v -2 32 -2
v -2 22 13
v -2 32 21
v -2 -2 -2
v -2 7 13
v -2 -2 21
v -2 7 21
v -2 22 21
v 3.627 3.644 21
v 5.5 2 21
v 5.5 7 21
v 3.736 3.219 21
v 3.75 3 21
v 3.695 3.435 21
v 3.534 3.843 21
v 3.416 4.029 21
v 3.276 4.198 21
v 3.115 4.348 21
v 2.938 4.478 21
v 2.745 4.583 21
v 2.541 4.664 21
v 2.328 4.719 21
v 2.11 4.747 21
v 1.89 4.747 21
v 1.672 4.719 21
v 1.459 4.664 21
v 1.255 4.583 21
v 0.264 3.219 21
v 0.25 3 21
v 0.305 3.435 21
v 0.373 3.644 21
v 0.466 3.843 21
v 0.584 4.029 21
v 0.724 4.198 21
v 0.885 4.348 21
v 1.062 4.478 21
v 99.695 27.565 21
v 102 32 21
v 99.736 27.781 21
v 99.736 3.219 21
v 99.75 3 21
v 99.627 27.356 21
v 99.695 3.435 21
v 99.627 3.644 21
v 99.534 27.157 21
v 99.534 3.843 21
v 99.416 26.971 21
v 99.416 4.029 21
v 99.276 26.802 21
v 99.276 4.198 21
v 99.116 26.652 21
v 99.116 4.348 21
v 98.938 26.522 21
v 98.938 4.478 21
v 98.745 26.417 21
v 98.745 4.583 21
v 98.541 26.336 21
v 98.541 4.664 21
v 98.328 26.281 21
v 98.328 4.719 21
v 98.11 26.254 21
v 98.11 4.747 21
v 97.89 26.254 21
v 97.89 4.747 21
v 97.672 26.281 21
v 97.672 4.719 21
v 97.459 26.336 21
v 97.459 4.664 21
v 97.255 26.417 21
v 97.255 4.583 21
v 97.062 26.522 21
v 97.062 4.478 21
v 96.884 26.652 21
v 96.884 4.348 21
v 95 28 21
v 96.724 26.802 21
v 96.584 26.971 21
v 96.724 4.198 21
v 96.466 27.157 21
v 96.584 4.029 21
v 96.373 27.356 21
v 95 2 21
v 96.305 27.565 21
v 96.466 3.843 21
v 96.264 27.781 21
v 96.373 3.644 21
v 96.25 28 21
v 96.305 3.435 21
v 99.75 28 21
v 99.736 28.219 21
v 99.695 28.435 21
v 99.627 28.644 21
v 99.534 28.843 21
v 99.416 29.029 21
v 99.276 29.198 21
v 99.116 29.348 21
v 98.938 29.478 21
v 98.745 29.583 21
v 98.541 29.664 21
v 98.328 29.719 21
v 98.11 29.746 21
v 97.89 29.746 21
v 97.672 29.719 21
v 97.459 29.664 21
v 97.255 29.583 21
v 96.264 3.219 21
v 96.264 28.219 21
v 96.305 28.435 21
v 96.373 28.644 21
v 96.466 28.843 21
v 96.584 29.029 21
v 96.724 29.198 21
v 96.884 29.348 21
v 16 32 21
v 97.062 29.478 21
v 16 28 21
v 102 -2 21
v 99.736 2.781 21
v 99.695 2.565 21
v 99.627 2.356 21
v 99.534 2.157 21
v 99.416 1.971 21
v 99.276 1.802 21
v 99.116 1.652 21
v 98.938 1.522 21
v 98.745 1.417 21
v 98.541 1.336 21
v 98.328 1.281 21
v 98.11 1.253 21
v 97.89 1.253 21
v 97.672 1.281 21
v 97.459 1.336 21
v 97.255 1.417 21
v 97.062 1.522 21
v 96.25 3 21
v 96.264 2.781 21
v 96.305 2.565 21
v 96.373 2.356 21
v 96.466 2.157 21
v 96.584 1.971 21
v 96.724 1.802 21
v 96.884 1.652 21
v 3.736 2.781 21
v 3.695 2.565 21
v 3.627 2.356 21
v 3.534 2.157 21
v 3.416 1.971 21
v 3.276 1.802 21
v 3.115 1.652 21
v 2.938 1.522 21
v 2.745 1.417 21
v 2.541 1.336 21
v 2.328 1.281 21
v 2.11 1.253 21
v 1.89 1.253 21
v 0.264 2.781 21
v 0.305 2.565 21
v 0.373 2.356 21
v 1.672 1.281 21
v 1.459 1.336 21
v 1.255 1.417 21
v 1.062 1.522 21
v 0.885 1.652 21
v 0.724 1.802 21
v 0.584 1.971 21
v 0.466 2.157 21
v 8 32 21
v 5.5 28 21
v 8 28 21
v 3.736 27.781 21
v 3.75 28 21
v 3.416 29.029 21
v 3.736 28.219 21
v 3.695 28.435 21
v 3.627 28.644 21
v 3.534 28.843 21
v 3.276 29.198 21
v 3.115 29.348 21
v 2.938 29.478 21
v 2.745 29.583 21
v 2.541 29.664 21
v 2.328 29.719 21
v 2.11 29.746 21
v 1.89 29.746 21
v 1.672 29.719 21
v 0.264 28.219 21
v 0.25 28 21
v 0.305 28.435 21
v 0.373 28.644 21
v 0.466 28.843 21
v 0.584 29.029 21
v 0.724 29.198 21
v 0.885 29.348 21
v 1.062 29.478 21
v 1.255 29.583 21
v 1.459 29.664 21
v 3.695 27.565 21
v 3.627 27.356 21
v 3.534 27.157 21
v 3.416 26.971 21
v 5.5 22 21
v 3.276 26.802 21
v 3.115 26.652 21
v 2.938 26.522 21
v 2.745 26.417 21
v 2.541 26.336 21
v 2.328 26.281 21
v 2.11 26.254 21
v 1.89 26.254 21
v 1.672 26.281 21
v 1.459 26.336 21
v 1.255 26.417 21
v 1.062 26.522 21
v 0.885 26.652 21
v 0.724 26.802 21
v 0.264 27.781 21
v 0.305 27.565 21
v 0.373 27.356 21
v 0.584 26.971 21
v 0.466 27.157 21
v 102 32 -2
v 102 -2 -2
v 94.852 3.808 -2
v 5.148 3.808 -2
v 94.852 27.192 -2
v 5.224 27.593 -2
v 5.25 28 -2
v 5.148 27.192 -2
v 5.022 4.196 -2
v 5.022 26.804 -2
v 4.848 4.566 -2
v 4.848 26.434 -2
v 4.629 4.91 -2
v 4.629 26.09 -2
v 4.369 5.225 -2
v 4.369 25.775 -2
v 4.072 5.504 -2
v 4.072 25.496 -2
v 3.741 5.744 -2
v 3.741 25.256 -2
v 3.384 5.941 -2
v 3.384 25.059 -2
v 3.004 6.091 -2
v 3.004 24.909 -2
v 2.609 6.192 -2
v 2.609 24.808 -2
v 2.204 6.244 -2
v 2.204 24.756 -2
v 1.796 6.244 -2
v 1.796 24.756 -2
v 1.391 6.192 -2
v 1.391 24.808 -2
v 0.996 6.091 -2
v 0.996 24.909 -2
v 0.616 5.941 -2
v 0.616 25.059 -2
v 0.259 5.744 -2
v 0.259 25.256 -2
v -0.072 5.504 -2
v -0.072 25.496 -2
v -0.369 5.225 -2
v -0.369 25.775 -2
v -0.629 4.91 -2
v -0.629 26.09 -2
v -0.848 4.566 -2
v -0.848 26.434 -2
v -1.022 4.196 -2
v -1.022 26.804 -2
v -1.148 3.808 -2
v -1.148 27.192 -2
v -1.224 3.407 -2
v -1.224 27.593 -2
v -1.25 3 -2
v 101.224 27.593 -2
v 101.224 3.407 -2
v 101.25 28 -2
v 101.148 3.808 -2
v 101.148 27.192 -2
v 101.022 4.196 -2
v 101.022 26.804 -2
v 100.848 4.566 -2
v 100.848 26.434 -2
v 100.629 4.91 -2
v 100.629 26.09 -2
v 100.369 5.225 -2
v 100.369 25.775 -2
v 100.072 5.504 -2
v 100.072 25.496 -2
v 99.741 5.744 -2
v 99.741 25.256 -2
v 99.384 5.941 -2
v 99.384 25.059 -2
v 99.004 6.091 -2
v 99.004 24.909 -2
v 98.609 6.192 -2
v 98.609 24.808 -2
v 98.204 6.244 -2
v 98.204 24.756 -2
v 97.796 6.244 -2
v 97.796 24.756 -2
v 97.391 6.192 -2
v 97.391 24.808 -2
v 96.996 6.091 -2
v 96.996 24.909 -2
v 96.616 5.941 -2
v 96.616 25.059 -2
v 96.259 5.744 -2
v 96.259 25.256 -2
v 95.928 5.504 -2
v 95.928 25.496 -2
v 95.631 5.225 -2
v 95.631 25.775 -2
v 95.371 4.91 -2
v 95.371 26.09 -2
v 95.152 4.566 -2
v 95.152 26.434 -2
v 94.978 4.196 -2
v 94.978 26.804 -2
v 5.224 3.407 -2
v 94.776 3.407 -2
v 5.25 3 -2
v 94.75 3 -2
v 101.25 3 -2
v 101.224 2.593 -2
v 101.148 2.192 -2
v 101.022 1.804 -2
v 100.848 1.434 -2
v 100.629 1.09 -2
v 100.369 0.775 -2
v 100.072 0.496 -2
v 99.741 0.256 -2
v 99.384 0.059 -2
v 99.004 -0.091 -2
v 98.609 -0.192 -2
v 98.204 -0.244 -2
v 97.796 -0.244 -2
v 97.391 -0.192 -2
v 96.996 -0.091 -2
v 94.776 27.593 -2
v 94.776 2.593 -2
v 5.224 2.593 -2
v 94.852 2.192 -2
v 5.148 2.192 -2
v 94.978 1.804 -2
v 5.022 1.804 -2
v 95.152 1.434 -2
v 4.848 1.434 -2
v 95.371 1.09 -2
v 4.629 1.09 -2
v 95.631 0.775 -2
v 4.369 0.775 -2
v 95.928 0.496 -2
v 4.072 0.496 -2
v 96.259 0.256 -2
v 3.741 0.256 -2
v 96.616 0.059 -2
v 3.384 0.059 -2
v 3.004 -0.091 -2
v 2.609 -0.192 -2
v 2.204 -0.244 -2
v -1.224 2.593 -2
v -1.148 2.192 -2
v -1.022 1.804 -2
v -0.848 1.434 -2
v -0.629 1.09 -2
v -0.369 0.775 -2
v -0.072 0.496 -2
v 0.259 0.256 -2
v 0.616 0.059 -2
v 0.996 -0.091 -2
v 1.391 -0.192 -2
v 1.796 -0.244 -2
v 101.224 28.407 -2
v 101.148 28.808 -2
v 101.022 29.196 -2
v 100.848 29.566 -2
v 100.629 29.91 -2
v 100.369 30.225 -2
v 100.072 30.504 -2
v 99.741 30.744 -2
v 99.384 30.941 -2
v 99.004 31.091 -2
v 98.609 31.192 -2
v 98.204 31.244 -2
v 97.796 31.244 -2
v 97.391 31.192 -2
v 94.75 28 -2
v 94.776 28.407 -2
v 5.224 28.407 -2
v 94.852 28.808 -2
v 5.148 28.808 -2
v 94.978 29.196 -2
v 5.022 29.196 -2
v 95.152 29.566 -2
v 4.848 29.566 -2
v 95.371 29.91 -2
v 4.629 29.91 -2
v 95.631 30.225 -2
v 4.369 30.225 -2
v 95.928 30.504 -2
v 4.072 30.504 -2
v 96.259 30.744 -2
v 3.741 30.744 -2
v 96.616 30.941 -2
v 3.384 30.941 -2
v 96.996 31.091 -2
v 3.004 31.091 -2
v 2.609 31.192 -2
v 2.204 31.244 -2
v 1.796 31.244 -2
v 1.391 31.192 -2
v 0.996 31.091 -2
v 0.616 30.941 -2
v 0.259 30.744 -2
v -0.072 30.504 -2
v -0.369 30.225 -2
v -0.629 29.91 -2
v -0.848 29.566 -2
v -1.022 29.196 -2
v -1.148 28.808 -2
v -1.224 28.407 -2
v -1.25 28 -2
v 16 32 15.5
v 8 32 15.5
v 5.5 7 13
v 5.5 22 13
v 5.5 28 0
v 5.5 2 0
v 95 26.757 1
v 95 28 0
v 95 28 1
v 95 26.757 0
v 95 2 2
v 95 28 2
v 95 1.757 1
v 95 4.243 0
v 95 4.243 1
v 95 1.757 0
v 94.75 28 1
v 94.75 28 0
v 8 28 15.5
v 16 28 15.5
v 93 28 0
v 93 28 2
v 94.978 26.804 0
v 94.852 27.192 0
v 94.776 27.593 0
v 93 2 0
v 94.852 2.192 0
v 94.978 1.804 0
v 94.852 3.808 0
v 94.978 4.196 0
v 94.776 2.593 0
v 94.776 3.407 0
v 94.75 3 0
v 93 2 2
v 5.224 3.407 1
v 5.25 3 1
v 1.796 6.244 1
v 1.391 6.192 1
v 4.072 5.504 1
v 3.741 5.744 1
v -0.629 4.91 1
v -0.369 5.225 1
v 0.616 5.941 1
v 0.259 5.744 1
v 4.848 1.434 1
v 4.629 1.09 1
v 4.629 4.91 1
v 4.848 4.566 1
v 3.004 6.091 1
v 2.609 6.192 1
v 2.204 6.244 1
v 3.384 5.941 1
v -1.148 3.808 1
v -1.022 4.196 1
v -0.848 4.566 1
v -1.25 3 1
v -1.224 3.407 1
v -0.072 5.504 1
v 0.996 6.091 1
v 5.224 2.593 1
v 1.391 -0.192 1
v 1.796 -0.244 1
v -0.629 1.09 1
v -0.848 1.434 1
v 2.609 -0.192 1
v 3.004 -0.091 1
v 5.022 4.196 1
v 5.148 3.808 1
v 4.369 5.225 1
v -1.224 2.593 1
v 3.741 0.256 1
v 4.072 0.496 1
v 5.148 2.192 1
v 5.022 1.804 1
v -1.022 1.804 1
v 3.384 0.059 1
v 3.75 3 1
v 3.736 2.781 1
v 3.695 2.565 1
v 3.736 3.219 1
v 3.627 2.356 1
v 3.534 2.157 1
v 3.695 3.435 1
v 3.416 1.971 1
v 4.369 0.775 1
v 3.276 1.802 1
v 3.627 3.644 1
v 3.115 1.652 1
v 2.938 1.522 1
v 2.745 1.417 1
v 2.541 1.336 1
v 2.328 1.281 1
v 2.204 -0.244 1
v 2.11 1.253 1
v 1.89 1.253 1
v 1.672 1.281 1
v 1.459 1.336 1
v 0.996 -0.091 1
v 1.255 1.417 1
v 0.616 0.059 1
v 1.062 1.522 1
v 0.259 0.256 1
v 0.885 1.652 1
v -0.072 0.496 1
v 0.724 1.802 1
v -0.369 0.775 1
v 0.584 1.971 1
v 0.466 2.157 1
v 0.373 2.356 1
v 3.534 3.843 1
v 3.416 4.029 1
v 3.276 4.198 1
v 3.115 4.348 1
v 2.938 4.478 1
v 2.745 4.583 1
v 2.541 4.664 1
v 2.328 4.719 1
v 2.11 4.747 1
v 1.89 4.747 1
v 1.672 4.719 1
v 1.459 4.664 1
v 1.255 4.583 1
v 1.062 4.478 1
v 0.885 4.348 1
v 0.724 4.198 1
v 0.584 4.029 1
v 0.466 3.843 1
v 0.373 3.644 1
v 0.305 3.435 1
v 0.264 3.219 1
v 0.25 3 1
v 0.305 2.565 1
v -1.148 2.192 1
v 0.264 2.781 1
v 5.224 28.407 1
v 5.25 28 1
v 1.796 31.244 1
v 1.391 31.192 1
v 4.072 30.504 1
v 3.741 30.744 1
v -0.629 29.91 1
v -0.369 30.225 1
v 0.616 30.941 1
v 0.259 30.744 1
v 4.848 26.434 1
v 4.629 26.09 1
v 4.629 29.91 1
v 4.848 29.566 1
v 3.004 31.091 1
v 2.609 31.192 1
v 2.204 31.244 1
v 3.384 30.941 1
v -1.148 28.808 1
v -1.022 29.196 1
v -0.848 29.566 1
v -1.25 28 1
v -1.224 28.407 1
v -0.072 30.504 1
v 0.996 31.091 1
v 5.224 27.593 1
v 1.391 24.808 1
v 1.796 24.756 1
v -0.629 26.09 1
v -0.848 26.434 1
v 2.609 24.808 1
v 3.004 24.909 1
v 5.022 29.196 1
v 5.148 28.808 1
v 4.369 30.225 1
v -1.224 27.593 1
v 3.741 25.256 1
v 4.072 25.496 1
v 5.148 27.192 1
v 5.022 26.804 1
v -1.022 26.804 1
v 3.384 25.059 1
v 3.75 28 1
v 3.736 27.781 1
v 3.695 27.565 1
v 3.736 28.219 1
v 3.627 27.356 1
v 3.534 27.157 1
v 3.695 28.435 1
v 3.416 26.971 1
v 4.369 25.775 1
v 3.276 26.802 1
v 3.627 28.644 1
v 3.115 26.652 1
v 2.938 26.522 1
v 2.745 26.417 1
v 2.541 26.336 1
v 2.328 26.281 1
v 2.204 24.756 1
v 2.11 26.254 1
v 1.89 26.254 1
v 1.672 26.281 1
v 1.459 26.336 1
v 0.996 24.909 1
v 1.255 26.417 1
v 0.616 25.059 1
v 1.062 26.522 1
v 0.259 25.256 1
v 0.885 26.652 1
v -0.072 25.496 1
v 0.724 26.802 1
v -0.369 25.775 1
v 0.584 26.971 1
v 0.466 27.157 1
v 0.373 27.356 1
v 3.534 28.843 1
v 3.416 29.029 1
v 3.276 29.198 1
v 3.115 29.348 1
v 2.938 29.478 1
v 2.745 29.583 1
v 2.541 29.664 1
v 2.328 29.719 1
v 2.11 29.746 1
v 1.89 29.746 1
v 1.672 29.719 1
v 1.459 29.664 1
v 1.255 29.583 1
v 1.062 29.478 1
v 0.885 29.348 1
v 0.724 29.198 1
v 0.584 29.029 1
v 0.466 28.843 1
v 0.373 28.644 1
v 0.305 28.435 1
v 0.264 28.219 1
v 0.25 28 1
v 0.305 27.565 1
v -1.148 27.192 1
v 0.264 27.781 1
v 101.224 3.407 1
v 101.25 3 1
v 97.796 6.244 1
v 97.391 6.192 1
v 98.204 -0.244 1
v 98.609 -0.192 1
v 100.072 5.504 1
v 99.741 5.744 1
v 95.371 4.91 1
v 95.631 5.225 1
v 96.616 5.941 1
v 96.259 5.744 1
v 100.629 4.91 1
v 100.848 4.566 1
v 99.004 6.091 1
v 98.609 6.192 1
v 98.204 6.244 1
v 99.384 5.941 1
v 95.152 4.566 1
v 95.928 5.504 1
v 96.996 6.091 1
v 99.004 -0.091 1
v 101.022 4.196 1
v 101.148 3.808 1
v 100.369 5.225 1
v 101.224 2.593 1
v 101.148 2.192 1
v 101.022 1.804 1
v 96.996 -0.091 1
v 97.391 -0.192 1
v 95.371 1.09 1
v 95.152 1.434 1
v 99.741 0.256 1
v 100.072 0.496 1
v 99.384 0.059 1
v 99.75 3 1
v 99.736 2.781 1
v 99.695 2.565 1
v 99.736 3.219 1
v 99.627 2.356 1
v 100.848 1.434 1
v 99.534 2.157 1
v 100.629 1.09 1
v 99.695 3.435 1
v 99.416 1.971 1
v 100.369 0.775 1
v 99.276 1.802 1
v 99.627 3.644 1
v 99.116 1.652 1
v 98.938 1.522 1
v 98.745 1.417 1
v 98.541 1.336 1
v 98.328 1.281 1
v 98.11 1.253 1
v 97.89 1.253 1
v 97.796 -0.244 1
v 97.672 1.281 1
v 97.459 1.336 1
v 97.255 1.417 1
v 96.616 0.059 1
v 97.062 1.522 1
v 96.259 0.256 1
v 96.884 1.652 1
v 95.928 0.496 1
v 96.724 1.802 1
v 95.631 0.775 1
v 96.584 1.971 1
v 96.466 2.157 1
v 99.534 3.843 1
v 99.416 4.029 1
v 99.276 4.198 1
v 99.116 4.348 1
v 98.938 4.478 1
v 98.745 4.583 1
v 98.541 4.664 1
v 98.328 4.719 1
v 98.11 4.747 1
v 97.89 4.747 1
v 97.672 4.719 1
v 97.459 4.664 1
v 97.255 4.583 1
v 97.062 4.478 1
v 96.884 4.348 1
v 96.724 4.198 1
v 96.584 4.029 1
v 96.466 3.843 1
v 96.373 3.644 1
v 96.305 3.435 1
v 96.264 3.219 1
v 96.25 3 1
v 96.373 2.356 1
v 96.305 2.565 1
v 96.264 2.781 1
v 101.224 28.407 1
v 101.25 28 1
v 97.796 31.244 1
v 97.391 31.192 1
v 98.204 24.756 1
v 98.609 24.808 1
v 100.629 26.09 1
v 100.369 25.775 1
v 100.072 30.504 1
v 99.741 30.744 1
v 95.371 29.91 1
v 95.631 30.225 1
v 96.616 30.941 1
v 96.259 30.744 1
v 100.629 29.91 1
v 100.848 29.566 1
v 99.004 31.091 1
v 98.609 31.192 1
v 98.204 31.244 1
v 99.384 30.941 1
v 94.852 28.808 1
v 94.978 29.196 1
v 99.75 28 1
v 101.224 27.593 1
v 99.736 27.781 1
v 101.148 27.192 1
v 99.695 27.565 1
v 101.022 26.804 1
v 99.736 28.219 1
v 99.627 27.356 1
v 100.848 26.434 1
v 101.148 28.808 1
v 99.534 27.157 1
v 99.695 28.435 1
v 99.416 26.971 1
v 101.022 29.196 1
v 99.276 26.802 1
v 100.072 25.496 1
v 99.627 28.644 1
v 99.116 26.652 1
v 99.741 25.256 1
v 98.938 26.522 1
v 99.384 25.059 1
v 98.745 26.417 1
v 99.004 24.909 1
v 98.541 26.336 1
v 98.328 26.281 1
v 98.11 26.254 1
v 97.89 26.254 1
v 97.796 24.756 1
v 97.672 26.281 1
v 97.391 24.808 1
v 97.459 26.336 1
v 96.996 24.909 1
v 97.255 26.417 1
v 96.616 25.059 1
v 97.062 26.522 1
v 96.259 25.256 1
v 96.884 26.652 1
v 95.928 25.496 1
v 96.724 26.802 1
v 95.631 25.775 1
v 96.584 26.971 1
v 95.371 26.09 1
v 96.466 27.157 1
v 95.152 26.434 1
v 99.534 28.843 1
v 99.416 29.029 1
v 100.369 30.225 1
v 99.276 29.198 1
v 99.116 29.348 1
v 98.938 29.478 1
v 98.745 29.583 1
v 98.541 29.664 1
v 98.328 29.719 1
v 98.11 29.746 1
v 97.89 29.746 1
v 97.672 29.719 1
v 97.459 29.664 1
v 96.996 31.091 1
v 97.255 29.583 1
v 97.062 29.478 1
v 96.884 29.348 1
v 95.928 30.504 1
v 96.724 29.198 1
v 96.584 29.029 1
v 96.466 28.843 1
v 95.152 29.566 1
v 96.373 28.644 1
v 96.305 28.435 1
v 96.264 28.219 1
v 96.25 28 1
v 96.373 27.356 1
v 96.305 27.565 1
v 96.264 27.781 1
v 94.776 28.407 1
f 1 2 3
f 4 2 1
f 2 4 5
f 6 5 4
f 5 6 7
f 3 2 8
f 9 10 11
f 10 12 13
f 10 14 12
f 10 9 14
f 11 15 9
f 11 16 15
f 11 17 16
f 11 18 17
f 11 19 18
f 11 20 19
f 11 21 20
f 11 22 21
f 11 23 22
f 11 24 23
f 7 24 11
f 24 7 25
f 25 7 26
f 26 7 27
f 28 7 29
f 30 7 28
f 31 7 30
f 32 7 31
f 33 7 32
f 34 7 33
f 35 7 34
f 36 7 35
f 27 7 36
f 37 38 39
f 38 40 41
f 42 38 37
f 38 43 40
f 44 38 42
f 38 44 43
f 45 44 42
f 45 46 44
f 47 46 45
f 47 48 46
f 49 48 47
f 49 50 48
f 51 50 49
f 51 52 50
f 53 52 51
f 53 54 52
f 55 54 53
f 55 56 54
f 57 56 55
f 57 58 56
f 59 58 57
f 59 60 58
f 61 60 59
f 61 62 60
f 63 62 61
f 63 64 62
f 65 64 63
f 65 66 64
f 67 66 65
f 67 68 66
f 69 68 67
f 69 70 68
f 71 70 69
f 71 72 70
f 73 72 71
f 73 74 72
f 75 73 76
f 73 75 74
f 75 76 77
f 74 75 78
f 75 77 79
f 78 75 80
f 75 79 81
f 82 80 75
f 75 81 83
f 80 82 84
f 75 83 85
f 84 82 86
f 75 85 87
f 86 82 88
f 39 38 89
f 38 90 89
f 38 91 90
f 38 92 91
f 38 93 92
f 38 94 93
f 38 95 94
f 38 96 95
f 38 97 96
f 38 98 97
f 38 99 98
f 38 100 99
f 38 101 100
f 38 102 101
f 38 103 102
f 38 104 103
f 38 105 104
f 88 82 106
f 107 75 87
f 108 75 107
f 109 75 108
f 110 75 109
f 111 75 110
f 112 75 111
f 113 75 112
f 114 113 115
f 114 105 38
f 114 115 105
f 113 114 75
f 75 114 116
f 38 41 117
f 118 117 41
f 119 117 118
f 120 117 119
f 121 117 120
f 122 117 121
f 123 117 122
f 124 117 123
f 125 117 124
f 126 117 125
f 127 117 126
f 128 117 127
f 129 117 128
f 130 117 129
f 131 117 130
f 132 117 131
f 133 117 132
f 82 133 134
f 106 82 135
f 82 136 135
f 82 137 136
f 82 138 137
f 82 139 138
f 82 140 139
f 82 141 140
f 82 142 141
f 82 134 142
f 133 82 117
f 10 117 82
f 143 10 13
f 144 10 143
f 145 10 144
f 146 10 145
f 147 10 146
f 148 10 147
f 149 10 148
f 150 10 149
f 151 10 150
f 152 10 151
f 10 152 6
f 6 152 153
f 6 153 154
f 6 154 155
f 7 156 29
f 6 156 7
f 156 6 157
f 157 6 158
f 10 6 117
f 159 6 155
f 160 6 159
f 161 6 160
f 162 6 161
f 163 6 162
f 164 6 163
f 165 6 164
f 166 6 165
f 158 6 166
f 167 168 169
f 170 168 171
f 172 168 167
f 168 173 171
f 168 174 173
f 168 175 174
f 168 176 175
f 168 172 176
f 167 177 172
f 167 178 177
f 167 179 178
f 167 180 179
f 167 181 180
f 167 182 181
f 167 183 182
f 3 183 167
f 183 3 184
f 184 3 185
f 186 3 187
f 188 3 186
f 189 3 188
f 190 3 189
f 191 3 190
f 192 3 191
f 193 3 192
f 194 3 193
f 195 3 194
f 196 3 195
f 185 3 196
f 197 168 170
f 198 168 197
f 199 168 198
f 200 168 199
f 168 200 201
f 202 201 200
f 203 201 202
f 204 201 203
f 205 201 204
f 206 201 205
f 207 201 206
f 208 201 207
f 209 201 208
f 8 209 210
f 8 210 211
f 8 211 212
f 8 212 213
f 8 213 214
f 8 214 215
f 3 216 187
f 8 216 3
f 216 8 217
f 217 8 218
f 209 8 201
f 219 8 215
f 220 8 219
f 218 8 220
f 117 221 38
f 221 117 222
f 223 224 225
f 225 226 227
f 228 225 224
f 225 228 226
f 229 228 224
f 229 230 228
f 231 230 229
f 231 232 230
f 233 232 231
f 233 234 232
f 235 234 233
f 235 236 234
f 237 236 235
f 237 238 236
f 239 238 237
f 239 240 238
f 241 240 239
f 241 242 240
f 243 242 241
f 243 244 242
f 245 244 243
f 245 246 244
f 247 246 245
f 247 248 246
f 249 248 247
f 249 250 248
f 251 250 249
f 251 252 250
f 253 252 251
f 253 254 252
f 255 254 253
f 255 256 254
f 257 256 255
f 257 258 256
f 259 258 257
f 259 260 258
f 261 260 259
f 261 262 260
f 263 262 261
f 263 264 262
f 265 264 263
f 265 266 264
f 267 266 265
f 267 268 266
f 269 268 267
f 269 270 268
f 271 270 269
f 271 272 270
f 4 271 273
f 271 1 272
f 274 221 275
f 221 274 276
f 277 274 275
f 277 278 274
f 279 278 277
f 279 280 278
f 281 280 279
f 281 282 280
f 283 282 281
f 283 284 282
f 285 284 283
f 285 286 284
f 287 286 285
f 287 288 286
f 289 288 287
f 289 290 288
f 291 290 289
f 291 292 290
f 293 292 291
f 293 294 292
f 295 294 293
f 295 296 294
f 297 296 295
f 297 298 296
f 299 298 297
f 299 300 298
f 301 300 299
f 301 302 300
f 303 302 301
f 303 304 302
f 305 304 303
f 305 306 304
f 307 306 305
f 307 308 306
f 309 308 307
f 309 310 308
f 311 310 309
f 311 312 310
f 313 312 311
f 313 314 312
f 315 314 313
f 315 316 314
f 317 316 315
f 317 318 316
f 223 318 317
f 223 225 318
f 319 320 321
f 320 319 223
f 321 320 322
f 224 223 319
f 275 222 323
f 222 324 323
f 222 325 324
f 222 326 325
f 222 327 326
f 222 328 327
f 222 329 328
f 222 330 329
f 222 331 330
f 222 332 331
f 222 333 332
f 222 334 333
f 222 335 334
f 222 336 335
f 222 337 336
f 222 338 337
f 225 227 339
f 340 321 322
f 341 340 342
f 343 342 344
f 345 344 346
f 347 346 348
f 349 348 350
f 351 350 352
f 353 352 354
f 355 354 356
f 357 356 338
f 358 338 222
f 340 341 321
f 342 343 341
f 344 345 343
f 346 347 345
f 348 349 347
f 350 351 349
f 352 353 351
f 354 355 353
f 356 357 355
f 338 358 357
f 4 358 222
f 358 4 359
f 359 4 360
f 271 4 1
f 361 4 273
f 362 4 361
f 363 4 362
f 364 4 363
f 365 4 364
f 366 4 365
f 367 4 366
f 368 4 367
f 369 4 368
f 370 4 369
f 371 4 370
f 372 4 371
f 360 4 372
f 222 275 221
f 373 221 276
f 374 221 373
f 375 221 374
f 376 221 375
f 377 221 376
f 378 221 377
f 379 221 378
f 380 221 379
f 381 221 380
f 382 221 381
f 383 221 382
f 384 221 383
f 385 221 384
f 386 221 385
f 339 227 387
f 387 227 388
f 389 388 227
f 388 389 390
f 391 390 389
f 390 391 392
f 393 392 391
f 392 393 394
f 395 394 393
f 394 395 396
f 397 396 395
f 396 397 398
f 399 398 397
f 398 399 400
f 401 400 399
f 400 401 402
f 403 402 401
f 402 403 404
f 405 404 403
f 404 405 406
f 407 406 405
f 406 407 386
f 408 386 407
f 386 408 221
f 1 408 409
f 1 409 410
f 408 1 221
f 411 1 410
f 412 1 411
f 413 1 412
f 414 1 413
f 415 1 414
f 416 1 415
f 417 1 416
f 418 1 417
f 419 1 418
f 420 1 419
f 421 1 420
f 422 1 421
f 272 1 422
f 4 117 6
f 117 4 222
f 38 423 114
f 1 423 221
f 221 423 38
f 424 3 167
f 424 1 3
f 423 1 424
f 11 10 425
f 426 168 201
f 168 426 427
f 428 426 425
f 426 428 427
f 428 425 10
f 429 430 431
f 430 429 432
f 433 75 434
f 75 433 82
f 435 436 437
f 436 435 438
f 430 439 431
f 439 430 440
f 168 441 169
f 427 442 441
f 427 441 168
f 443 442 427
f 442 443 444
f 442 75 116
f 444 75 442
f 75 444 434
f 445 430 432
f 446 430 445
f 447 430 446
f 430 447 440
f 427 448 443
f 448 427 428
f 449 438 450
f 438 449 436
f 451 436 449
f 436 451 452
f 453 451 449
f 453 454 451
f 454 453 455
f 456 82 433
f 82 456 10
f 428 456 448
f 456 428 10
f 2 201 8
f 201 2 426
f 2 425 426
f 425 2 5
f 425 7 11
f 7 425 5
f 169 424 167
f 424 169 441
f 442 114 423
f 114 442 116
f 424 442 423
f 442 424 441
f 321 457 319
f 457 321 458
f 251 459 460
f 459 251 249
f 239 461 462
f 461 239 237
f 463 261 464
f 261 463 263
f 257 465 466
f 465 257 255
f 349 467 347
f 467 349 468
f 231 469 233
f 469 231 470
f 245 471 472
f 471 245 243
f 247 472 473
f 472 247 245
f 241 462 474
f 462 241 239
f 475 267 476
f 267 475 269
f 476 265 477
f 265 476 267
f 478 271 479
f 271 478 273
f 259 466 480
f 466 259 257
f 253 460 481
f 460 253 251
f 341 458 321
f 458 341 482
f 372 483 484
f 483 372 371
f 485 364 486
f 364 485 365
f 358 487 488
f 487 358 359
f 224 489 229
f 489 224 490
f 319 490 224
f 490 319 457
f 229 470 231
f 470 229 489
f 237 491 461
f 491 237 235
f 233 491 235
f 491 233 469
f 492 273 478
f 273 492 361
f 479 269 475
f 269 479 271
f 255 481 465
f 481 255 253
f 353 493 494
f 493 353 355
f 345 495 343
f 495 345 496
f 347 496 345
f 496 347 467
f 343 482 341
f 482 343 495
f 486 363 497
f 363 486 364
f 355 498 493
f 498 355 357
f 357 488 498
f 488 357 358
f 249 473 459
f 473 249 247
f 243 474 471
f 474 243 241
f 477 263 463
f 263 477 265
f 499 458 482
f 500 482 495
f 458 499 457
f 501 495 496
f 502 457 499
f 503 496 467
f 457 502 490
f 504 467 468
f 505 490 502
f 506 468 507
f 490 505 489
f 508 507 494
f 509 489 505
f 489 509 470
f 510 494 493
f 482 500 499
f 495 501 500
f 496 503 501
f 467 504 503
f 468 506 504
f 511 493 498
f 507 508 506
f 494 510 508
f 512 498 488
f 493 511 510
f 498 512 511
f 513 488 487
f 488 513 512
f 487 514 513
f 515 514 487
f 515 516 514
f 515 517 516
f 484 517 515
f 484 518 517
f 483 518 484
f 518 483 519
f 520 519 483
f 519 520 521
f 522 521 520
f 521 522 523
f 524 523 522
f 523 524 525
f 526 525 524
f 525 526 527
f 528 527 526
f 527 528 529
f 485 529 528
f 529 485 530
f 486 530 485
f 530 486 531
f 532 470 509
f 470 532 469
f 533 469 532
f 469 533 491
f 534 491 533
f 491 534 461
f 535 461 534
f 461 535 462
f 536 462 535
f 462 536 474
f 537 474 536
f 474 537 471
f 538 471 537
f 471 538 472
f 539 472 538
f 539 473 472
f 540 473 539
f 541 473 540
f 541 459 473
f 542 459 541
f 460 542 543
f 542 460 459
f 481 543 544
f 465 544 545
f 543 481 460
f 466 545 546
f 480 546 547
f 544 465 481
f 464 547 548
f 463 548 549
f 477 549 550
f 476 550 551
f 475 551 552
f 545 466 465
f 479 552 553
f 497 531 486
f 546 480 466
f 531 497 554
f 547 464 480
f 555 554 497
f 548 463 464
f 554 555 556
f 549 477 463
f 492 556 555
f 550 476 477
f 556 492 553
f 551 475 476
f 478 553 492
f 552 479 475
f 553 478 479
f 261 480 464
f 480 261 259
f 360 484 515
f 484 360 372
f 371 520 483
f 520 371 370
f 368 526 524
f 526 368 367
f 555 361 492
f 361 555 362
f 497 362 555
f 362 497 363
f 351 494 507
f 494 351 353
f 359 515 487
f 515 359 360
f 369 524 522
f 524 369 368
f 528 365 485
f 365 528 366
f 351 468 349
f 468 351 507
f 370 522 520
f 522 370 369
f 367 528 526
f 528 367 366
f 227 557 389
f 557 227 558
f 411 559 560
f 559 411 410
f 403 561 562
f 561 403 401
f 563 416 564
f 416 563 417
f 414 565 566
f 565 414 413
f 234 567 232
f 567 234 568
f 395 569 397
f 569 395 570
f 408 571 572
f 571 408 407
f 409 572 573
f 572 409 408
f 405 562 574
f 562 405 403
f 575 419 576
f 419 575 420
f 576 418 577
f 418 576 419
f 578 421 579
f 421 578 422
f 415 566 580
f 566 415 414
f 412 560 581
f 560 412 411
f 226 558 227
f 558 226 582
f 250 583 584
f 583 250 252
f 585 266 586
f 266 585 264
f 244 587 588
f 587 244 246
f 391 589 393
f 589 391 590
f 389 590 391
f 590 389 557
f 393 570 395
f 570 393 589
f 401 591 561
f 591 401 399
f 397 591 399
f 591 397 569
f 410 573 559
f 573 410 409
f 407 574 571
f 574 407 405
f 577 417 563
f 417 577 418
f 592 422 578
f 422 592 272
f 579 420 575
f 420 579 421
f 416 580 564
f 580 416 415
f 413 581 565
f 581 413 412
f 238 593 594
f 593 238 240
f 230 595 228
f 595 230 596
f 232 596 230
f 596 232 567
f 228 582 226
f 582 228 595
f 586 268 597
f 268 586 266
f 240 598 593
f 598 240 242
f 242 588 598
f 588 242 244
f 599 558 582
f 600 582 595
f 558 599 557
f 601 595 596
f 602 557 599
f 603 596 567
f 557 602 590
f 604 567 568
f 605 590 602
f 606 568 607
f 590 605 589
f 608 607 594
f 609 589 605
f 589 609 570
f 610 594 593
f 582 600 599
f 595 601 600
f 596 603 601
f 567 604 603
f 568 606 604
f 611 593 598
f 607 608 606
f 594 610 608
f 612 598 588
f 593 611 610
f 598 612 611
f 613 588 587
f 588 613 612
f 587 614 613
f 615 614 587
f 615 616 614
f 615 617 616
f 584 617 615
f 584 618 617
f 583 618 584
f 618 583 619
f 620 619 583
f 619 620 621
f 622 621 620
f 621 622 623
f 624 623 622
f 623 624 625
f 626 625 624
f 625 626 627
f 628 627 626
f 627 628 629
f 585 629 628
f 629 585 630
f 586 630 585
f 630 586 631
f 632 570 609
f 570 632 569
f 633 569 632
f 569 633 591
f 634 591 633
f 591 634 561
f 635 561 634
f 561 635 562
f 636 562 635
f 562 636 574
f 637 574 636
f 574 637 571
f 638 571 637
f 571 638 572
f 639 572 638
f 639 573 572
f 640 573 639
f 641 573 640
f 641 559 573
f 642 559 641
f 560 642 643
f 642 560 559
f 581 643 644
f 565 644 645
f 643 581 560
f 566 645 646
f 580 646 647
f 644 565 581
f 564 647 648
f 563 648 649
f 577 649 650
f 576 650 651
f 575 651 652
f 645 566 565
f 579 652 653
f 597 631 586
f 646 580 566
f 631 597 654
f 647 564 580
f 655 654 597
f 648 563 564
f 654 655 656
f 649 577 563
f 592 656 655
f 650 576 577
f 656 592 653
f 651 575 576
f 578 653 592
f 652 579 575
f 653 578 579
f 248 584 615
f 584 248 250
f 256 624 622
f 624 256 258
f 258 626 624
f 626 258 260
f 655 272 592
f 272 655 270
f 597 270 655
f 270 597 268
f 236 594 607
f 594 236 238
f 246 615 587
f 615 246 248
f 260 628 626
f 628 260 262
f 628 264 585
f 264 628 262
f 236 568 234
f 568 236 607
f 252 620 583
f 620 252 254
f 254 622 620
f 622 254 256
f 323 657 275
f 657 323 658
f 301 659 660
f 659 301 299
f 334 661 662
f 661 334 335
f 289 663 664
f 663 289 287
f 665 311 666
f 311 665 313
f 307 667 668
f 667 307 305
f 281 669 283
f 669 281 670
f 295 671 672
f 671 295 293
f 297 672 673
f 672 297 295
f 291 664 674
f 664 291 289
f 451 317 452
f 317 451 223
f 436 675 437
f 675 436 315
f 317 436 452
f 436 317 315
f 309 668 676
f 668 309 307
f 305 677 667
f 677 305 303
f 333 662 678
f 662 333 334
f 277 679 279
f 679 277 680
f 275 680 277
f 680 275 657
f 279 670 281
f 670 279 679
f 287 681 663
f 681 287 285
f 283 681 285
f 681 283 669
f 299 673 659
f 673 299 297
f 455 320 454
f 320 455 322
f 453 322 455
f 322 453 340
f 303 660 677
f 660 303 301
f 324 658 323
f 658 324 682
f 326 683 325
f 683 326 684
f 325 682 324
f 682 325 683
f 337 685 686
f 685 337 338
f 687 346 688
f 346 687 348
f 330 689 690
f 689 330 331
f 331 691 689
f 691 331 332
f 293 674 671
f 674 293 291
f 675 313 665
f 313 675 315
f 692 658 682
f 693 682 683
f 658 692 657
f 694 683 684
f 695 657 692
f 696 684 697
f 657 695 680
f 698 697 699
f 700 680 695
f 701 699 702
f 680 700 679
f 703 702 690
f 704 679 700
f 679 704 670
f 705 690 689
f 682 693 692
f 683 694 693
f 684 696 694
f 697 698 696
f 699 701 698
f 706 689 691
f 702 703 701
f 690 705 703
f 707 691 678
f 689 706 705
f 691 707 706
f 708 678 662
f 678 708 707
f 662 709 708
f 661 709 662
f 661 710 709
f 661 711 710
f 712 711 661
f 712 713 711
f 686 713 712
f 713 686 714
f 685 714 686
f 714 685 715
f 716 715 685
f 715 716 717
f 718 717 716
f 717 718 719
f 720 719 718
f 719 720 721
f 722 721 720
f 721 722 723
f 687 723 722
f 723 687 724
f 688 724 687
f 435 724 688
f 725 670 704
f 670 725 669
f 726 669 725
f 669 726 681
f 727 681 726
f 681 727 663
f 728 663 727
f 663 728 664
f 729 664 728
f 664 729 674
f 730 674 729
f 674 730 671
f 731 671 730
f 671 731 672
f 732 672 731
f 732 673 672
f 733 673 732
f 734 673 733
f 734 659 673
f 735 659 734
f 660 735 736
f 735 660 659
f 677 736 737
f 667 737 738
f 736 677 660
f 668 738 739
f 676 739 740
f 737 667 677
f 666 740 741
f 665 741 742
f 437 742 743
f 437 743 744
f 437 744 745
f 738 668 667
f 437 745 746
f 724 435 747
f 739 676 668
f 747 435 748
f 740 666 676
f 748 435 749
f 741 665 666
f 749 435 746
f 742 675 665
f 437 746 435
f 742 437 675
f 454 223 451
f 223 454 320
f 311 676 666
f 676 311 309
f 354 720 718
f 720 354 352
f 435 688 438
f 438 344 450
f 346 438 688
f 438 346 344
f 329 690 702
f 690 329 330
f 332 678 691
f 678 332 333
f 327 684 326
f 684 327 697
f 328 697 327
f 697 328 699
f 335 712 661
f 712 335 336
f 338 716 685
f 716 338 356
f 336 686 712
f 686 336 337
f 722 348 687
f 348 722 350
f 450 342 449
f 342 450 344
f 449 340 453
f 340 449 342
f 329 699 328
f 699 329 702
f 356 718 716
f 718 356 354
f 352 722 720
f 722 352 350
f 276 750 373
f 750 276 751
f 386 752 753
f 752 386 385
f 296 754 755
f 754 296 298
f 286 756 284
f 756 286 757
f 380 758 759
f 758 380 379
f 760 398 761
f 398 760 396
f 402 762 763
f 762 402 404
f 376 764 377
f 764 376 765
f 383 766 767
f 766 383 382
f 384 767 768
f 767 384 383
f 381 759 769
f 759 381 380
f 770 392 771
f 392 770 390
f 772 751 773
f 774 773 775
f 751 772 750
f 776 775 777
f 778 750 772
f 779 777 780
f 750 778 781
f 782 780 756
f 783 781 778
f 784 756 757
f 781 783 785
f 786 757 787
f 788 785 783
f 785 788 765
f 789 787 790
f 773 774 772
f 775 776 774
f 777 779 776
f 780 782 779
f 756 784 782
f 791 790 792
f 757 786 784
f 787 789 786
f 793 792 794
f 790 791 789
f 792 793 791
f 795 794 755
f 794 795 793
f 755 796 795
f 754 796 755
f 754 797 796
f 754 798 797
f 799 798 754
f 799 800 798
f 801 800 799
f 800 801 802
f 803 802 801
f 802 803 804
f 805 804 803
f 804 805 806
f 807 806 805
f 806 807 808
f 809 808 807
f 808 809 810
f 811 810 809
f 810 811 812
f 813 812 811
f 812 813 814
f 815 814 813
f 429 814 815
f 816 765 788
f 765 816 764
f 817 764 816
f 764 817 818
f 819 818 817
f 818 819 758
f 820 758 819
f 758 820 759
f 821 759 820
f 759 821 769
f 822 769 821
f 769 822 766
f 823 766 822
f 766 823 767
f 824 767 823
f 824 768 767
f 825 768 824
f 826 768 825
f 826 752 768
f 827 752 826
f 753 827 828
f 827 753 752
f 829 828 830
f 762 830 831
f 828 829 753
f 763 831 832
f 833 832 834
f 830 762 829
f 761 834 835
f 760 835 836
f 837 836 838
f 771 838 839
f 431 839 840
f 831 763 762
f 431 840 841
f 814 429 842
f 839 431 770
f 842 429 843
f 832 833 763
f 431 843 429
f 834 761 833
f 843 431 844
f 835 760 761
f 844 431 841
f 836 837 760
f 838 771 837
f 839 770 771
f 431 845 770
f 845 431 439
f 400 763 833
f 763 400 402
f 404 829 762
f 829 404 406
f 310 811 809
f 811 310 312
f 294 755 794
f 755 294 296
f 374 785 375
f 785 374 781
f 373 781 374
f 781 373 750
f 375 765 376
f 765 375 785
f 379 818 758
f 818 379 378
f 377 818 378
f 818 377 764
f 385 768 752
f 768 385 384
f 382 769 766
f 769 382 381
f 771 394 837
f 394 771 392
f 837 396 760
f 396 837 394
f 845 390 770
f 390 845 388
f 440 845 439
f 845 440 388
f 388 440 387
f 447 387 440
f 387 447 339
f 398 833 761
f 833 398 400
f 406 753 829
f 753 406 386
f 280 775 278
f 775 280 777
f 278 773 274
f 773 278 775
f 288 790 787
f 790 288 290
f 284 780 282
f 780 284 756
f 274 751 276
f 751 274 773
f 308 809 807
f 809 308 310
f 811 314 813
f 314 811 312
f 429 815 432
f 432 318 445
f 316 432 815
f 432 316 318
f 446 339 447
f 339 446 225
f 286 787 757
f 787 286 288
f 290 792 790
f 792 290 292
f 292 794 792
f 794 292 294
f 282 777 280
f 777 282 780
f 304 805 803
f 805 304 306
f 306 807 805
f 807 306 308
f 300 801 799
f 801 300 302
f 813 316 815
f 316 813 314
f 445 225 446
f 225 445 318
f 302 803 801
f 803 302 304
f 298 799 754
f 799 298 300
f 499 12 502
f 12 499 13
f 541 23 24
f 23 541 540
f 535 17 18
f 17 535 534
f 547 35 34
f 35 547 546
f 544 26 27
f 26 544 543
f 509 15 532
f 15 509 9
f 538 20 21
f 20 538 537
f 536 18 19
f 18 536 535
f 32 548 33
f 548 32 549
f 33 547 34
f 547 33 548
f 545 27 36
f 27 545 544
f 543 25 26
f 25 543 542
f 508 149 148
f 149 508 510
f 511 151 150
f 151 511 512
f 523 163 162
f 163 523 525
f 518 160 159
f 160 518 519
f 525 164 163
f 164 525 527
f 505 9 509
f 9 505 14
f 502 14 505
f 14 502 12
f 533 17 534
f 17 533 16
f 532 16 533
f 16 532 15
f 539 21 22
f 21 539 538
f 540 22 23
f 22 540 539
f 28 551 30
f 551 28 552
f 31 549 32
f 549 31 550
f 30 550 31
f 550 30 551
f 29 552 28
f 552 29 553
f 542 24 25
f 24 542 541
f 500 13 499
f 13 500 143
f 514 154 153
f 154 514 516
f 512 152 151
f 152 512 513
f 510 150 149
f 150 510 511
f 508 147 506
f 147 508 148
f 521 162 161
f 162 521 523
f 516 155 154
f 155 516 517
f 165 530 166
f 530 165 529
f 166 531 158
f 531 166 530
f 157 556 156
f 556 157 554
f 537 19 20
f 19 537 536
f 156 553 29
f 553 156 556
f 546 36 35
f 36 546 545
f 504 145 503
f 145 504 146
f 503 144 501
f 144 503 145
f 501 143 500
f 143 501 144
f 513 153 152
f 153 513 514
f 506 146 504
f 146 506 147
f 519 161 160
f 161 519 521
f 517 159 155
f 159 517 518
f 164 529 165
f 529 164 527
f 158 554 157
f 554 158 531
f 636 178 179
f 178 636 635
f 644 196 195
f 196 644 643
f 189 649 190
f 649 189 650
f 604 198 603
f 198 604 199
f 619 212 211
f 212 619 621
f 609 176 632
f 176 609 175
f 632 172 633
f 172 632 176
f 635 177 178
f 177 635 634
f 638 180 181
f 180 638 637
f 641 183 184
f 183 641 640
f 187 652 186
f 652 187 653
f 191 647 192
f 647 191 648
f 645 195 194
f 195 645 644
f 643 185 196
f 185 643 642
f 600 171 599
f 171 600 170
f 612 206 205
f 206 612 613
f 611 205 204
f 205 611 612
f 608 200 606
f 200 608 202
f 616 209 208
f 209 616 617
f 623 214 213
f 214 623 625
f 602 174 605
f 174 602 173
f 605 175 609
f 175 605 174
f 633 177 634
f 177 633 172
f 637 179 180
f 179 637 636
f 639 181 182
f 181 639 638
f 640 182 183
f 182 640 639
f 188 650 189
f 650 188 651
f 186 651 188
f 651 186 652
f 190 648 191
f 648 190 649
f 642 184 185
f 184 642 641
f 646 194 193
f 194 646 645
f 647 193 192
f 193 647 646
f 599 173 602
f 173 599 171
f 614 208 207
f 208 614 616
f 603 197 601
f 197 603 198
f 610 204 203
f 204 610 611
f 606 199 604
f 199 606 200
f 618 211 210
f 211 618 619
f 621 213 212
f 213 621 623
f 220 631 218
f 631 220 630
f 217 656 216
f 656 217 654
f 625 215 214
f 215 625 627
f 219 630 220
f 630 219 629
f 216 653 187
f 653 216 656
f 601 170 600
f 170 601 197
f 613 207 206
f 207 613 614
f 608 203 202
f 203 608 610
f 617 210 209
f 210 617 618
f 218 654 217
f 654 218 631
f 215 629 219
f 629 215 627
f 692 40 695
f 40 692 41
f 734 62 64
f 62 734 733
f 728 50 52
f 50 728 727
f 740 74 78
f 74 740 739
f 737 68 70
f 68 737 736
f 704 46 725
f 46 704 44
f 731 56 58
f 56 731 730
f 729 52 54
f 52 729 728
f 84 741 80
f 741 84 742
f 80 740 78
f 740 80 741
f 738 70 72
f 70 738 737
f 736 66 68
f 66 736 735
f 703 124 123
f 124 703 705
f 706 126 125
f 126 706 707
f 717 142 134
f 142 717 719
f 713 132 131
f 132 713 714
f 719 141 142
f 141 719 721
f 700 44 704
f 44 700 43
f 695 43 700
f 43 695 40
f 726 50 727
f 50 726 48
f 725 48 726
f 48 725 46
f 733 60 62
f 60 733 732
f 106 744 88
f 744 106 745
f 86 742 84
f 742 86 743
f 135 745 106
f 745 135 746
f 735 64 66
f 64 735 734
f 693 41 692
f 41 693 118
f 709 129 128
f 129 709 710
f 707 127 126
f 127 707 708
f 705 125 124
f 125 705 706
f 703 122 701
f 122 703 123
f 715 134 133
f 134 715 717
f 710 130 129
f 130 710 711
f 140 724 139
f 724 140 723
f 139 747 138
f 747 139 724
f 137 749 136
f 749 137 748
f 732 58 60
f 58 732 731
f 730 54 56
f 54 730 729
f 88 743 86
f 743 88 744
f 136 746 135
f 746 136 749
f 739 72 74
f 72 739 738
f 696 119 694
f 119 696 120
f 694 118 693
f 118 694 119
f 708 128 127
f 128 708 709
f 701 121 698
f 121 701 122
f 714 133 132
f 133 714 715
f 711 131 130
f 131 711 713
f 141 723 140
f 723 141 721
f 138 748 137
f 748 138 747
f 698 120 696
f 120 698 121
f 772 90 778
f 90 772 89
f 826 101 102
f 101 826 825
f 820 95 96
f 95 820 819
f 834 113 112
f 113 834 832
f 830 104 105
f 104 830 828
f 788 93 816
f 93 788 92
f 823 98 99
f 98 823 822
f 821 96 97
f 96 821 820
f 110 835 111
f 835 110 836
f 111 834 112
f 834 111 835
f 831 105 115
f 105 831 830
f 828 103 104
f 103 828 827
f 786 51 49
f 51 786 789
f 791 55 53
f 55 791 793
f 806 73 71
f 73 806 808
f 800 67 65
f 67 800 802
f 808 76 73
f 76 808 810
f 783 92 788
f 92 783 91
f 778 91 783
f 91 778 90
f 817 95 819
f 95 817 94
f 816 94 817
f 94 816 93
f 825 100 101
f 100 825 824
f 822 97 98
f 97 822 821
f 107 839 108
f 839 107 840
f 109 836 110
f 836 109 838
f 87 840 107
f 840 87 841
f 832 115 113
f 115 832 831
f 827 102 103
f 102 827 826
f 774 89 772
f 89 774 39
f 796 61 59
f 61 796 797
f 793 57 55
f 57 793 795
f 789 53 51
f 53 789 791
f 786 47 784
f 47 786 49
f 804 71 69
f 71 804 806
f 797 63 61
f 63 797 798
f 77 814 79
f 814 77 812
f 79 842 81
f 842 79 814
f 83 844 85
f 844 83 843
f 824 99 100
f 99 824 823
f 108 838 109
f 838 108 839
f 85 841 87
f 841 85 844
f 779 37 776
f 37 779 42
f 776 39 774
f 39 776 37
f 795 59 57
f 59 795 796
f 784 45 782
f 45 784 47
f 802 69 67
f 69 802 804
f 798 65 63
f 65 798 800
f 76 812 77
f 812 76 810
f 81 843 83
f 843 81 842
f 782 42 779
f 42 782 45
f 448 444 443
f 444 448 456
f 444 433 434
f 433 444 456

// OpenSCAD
$fn=50;
difference() {
    //minkowski() {
    translate([-2,-2,-2])    cube([104,34,23]);
    //    sphere(2);
    //}
    translate([5.5,2,0])cube([89.5,26,26]);
    translate([-2,7,13])cube([10,15,8]);
    translate([8,28,15.5])cube([8,5,5.5]);
    
    //Schraubenlöcher
    translate([2,3,-2])cylinder(3,6.5/2,6.5/2);
    translate([2,28,-2])cylinder(3,6.5/2,6.5/2);
    translate([98,3,-2])cylinder(3,6.5/2,6.5/2);
    translate([98,28,-2])cylinder(3,6.5/2,6.5/2);

    translate([2,3,-2])cylinder(26,3.5/2,3.5/2);
    translate([2,28,-2])cylinder(26,3.5/2,3.5/2);
    translate([98,3,-2])cylinder(26,3.5/2,3.5/2);
    translate([98,28,-2])cylinder(26,3.5/2,3.5/2);

    //Oben saubere Kante
    //translate([-2,-2,21])cube([110,40,2]);
}
//unschönes Loch entfernen
translate([93,0,0])cube([2,28,2]);
